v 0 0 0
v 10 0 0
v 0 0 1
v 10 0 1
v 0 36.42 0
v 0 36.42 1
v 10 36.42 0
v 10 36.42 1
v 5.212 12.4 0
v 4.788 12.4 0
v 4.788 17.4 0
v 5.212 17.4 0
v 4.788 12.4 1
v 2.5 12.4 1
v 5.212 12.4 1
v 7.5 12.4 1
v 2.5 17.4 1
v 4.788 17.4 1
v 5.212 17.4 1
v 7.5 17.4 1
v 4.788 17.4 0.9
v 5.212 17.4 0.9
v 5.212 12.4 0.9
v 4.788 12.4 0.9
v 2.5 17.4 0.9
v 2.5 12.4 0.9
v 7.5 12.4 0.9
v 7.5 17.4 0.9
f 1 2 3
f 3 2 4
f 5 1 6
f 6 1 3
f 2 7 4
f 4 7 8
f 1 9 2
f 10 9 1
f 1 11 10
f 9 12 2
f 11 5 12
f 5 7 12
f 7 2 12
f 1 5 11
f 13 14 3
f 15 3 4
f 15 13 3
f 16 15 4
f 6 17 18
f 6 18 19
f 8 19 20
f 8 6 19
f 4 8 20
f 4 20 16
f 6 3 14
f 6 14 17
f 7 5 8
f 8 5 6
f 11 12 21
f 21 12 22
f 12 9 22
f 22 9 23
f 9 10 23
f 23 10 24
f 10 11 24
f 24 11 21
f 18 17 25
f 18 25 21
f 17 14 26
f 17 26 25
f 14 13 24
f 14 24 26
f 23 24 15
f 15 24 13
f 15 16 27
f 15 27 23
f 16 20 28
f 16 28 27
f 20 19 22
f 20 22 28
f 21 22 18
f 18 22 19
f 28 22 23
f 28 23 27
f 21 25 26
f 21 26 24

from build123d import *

# Parameters (mm, degrees)
SKETCH_W     = 10
SKETCH_H     = 36.42
SKETCH_W_2   = 0.424
SKETCH_H_2   = 5
PAD_DEPTH    = 1
SKETCH001_W  = 5
SKETCH001_H  = 5
POCKET_DEPTH = 0.1


with BuildPart() as part:
    # Sketch → Pad (new body)
    with BuildSketch(Plane.XY):
        with Locations((5, 18.21)):
            Rectangle(SKETCH_W, SKETCH_H)
        with Locations((5, 14.9)):
            Rectangle(SKETCH_W_2, SKETCH_H_2, mode=Mode.SUBTRACT)
    extrude(amount=PAD_DEPTH)

    # Sketch001 (on Face10 of Pad) → Pocket (cut)
    with BuildSketch(Plane.XY.offset(1)):
        with Locations((5, 14.9)):
            Rectangle(SKETCH001_W, SKETCH001_H)
    extrude(amount=-POCKET_DEPTH, mode=Mode.SUBTRACT)


solid = part.part
